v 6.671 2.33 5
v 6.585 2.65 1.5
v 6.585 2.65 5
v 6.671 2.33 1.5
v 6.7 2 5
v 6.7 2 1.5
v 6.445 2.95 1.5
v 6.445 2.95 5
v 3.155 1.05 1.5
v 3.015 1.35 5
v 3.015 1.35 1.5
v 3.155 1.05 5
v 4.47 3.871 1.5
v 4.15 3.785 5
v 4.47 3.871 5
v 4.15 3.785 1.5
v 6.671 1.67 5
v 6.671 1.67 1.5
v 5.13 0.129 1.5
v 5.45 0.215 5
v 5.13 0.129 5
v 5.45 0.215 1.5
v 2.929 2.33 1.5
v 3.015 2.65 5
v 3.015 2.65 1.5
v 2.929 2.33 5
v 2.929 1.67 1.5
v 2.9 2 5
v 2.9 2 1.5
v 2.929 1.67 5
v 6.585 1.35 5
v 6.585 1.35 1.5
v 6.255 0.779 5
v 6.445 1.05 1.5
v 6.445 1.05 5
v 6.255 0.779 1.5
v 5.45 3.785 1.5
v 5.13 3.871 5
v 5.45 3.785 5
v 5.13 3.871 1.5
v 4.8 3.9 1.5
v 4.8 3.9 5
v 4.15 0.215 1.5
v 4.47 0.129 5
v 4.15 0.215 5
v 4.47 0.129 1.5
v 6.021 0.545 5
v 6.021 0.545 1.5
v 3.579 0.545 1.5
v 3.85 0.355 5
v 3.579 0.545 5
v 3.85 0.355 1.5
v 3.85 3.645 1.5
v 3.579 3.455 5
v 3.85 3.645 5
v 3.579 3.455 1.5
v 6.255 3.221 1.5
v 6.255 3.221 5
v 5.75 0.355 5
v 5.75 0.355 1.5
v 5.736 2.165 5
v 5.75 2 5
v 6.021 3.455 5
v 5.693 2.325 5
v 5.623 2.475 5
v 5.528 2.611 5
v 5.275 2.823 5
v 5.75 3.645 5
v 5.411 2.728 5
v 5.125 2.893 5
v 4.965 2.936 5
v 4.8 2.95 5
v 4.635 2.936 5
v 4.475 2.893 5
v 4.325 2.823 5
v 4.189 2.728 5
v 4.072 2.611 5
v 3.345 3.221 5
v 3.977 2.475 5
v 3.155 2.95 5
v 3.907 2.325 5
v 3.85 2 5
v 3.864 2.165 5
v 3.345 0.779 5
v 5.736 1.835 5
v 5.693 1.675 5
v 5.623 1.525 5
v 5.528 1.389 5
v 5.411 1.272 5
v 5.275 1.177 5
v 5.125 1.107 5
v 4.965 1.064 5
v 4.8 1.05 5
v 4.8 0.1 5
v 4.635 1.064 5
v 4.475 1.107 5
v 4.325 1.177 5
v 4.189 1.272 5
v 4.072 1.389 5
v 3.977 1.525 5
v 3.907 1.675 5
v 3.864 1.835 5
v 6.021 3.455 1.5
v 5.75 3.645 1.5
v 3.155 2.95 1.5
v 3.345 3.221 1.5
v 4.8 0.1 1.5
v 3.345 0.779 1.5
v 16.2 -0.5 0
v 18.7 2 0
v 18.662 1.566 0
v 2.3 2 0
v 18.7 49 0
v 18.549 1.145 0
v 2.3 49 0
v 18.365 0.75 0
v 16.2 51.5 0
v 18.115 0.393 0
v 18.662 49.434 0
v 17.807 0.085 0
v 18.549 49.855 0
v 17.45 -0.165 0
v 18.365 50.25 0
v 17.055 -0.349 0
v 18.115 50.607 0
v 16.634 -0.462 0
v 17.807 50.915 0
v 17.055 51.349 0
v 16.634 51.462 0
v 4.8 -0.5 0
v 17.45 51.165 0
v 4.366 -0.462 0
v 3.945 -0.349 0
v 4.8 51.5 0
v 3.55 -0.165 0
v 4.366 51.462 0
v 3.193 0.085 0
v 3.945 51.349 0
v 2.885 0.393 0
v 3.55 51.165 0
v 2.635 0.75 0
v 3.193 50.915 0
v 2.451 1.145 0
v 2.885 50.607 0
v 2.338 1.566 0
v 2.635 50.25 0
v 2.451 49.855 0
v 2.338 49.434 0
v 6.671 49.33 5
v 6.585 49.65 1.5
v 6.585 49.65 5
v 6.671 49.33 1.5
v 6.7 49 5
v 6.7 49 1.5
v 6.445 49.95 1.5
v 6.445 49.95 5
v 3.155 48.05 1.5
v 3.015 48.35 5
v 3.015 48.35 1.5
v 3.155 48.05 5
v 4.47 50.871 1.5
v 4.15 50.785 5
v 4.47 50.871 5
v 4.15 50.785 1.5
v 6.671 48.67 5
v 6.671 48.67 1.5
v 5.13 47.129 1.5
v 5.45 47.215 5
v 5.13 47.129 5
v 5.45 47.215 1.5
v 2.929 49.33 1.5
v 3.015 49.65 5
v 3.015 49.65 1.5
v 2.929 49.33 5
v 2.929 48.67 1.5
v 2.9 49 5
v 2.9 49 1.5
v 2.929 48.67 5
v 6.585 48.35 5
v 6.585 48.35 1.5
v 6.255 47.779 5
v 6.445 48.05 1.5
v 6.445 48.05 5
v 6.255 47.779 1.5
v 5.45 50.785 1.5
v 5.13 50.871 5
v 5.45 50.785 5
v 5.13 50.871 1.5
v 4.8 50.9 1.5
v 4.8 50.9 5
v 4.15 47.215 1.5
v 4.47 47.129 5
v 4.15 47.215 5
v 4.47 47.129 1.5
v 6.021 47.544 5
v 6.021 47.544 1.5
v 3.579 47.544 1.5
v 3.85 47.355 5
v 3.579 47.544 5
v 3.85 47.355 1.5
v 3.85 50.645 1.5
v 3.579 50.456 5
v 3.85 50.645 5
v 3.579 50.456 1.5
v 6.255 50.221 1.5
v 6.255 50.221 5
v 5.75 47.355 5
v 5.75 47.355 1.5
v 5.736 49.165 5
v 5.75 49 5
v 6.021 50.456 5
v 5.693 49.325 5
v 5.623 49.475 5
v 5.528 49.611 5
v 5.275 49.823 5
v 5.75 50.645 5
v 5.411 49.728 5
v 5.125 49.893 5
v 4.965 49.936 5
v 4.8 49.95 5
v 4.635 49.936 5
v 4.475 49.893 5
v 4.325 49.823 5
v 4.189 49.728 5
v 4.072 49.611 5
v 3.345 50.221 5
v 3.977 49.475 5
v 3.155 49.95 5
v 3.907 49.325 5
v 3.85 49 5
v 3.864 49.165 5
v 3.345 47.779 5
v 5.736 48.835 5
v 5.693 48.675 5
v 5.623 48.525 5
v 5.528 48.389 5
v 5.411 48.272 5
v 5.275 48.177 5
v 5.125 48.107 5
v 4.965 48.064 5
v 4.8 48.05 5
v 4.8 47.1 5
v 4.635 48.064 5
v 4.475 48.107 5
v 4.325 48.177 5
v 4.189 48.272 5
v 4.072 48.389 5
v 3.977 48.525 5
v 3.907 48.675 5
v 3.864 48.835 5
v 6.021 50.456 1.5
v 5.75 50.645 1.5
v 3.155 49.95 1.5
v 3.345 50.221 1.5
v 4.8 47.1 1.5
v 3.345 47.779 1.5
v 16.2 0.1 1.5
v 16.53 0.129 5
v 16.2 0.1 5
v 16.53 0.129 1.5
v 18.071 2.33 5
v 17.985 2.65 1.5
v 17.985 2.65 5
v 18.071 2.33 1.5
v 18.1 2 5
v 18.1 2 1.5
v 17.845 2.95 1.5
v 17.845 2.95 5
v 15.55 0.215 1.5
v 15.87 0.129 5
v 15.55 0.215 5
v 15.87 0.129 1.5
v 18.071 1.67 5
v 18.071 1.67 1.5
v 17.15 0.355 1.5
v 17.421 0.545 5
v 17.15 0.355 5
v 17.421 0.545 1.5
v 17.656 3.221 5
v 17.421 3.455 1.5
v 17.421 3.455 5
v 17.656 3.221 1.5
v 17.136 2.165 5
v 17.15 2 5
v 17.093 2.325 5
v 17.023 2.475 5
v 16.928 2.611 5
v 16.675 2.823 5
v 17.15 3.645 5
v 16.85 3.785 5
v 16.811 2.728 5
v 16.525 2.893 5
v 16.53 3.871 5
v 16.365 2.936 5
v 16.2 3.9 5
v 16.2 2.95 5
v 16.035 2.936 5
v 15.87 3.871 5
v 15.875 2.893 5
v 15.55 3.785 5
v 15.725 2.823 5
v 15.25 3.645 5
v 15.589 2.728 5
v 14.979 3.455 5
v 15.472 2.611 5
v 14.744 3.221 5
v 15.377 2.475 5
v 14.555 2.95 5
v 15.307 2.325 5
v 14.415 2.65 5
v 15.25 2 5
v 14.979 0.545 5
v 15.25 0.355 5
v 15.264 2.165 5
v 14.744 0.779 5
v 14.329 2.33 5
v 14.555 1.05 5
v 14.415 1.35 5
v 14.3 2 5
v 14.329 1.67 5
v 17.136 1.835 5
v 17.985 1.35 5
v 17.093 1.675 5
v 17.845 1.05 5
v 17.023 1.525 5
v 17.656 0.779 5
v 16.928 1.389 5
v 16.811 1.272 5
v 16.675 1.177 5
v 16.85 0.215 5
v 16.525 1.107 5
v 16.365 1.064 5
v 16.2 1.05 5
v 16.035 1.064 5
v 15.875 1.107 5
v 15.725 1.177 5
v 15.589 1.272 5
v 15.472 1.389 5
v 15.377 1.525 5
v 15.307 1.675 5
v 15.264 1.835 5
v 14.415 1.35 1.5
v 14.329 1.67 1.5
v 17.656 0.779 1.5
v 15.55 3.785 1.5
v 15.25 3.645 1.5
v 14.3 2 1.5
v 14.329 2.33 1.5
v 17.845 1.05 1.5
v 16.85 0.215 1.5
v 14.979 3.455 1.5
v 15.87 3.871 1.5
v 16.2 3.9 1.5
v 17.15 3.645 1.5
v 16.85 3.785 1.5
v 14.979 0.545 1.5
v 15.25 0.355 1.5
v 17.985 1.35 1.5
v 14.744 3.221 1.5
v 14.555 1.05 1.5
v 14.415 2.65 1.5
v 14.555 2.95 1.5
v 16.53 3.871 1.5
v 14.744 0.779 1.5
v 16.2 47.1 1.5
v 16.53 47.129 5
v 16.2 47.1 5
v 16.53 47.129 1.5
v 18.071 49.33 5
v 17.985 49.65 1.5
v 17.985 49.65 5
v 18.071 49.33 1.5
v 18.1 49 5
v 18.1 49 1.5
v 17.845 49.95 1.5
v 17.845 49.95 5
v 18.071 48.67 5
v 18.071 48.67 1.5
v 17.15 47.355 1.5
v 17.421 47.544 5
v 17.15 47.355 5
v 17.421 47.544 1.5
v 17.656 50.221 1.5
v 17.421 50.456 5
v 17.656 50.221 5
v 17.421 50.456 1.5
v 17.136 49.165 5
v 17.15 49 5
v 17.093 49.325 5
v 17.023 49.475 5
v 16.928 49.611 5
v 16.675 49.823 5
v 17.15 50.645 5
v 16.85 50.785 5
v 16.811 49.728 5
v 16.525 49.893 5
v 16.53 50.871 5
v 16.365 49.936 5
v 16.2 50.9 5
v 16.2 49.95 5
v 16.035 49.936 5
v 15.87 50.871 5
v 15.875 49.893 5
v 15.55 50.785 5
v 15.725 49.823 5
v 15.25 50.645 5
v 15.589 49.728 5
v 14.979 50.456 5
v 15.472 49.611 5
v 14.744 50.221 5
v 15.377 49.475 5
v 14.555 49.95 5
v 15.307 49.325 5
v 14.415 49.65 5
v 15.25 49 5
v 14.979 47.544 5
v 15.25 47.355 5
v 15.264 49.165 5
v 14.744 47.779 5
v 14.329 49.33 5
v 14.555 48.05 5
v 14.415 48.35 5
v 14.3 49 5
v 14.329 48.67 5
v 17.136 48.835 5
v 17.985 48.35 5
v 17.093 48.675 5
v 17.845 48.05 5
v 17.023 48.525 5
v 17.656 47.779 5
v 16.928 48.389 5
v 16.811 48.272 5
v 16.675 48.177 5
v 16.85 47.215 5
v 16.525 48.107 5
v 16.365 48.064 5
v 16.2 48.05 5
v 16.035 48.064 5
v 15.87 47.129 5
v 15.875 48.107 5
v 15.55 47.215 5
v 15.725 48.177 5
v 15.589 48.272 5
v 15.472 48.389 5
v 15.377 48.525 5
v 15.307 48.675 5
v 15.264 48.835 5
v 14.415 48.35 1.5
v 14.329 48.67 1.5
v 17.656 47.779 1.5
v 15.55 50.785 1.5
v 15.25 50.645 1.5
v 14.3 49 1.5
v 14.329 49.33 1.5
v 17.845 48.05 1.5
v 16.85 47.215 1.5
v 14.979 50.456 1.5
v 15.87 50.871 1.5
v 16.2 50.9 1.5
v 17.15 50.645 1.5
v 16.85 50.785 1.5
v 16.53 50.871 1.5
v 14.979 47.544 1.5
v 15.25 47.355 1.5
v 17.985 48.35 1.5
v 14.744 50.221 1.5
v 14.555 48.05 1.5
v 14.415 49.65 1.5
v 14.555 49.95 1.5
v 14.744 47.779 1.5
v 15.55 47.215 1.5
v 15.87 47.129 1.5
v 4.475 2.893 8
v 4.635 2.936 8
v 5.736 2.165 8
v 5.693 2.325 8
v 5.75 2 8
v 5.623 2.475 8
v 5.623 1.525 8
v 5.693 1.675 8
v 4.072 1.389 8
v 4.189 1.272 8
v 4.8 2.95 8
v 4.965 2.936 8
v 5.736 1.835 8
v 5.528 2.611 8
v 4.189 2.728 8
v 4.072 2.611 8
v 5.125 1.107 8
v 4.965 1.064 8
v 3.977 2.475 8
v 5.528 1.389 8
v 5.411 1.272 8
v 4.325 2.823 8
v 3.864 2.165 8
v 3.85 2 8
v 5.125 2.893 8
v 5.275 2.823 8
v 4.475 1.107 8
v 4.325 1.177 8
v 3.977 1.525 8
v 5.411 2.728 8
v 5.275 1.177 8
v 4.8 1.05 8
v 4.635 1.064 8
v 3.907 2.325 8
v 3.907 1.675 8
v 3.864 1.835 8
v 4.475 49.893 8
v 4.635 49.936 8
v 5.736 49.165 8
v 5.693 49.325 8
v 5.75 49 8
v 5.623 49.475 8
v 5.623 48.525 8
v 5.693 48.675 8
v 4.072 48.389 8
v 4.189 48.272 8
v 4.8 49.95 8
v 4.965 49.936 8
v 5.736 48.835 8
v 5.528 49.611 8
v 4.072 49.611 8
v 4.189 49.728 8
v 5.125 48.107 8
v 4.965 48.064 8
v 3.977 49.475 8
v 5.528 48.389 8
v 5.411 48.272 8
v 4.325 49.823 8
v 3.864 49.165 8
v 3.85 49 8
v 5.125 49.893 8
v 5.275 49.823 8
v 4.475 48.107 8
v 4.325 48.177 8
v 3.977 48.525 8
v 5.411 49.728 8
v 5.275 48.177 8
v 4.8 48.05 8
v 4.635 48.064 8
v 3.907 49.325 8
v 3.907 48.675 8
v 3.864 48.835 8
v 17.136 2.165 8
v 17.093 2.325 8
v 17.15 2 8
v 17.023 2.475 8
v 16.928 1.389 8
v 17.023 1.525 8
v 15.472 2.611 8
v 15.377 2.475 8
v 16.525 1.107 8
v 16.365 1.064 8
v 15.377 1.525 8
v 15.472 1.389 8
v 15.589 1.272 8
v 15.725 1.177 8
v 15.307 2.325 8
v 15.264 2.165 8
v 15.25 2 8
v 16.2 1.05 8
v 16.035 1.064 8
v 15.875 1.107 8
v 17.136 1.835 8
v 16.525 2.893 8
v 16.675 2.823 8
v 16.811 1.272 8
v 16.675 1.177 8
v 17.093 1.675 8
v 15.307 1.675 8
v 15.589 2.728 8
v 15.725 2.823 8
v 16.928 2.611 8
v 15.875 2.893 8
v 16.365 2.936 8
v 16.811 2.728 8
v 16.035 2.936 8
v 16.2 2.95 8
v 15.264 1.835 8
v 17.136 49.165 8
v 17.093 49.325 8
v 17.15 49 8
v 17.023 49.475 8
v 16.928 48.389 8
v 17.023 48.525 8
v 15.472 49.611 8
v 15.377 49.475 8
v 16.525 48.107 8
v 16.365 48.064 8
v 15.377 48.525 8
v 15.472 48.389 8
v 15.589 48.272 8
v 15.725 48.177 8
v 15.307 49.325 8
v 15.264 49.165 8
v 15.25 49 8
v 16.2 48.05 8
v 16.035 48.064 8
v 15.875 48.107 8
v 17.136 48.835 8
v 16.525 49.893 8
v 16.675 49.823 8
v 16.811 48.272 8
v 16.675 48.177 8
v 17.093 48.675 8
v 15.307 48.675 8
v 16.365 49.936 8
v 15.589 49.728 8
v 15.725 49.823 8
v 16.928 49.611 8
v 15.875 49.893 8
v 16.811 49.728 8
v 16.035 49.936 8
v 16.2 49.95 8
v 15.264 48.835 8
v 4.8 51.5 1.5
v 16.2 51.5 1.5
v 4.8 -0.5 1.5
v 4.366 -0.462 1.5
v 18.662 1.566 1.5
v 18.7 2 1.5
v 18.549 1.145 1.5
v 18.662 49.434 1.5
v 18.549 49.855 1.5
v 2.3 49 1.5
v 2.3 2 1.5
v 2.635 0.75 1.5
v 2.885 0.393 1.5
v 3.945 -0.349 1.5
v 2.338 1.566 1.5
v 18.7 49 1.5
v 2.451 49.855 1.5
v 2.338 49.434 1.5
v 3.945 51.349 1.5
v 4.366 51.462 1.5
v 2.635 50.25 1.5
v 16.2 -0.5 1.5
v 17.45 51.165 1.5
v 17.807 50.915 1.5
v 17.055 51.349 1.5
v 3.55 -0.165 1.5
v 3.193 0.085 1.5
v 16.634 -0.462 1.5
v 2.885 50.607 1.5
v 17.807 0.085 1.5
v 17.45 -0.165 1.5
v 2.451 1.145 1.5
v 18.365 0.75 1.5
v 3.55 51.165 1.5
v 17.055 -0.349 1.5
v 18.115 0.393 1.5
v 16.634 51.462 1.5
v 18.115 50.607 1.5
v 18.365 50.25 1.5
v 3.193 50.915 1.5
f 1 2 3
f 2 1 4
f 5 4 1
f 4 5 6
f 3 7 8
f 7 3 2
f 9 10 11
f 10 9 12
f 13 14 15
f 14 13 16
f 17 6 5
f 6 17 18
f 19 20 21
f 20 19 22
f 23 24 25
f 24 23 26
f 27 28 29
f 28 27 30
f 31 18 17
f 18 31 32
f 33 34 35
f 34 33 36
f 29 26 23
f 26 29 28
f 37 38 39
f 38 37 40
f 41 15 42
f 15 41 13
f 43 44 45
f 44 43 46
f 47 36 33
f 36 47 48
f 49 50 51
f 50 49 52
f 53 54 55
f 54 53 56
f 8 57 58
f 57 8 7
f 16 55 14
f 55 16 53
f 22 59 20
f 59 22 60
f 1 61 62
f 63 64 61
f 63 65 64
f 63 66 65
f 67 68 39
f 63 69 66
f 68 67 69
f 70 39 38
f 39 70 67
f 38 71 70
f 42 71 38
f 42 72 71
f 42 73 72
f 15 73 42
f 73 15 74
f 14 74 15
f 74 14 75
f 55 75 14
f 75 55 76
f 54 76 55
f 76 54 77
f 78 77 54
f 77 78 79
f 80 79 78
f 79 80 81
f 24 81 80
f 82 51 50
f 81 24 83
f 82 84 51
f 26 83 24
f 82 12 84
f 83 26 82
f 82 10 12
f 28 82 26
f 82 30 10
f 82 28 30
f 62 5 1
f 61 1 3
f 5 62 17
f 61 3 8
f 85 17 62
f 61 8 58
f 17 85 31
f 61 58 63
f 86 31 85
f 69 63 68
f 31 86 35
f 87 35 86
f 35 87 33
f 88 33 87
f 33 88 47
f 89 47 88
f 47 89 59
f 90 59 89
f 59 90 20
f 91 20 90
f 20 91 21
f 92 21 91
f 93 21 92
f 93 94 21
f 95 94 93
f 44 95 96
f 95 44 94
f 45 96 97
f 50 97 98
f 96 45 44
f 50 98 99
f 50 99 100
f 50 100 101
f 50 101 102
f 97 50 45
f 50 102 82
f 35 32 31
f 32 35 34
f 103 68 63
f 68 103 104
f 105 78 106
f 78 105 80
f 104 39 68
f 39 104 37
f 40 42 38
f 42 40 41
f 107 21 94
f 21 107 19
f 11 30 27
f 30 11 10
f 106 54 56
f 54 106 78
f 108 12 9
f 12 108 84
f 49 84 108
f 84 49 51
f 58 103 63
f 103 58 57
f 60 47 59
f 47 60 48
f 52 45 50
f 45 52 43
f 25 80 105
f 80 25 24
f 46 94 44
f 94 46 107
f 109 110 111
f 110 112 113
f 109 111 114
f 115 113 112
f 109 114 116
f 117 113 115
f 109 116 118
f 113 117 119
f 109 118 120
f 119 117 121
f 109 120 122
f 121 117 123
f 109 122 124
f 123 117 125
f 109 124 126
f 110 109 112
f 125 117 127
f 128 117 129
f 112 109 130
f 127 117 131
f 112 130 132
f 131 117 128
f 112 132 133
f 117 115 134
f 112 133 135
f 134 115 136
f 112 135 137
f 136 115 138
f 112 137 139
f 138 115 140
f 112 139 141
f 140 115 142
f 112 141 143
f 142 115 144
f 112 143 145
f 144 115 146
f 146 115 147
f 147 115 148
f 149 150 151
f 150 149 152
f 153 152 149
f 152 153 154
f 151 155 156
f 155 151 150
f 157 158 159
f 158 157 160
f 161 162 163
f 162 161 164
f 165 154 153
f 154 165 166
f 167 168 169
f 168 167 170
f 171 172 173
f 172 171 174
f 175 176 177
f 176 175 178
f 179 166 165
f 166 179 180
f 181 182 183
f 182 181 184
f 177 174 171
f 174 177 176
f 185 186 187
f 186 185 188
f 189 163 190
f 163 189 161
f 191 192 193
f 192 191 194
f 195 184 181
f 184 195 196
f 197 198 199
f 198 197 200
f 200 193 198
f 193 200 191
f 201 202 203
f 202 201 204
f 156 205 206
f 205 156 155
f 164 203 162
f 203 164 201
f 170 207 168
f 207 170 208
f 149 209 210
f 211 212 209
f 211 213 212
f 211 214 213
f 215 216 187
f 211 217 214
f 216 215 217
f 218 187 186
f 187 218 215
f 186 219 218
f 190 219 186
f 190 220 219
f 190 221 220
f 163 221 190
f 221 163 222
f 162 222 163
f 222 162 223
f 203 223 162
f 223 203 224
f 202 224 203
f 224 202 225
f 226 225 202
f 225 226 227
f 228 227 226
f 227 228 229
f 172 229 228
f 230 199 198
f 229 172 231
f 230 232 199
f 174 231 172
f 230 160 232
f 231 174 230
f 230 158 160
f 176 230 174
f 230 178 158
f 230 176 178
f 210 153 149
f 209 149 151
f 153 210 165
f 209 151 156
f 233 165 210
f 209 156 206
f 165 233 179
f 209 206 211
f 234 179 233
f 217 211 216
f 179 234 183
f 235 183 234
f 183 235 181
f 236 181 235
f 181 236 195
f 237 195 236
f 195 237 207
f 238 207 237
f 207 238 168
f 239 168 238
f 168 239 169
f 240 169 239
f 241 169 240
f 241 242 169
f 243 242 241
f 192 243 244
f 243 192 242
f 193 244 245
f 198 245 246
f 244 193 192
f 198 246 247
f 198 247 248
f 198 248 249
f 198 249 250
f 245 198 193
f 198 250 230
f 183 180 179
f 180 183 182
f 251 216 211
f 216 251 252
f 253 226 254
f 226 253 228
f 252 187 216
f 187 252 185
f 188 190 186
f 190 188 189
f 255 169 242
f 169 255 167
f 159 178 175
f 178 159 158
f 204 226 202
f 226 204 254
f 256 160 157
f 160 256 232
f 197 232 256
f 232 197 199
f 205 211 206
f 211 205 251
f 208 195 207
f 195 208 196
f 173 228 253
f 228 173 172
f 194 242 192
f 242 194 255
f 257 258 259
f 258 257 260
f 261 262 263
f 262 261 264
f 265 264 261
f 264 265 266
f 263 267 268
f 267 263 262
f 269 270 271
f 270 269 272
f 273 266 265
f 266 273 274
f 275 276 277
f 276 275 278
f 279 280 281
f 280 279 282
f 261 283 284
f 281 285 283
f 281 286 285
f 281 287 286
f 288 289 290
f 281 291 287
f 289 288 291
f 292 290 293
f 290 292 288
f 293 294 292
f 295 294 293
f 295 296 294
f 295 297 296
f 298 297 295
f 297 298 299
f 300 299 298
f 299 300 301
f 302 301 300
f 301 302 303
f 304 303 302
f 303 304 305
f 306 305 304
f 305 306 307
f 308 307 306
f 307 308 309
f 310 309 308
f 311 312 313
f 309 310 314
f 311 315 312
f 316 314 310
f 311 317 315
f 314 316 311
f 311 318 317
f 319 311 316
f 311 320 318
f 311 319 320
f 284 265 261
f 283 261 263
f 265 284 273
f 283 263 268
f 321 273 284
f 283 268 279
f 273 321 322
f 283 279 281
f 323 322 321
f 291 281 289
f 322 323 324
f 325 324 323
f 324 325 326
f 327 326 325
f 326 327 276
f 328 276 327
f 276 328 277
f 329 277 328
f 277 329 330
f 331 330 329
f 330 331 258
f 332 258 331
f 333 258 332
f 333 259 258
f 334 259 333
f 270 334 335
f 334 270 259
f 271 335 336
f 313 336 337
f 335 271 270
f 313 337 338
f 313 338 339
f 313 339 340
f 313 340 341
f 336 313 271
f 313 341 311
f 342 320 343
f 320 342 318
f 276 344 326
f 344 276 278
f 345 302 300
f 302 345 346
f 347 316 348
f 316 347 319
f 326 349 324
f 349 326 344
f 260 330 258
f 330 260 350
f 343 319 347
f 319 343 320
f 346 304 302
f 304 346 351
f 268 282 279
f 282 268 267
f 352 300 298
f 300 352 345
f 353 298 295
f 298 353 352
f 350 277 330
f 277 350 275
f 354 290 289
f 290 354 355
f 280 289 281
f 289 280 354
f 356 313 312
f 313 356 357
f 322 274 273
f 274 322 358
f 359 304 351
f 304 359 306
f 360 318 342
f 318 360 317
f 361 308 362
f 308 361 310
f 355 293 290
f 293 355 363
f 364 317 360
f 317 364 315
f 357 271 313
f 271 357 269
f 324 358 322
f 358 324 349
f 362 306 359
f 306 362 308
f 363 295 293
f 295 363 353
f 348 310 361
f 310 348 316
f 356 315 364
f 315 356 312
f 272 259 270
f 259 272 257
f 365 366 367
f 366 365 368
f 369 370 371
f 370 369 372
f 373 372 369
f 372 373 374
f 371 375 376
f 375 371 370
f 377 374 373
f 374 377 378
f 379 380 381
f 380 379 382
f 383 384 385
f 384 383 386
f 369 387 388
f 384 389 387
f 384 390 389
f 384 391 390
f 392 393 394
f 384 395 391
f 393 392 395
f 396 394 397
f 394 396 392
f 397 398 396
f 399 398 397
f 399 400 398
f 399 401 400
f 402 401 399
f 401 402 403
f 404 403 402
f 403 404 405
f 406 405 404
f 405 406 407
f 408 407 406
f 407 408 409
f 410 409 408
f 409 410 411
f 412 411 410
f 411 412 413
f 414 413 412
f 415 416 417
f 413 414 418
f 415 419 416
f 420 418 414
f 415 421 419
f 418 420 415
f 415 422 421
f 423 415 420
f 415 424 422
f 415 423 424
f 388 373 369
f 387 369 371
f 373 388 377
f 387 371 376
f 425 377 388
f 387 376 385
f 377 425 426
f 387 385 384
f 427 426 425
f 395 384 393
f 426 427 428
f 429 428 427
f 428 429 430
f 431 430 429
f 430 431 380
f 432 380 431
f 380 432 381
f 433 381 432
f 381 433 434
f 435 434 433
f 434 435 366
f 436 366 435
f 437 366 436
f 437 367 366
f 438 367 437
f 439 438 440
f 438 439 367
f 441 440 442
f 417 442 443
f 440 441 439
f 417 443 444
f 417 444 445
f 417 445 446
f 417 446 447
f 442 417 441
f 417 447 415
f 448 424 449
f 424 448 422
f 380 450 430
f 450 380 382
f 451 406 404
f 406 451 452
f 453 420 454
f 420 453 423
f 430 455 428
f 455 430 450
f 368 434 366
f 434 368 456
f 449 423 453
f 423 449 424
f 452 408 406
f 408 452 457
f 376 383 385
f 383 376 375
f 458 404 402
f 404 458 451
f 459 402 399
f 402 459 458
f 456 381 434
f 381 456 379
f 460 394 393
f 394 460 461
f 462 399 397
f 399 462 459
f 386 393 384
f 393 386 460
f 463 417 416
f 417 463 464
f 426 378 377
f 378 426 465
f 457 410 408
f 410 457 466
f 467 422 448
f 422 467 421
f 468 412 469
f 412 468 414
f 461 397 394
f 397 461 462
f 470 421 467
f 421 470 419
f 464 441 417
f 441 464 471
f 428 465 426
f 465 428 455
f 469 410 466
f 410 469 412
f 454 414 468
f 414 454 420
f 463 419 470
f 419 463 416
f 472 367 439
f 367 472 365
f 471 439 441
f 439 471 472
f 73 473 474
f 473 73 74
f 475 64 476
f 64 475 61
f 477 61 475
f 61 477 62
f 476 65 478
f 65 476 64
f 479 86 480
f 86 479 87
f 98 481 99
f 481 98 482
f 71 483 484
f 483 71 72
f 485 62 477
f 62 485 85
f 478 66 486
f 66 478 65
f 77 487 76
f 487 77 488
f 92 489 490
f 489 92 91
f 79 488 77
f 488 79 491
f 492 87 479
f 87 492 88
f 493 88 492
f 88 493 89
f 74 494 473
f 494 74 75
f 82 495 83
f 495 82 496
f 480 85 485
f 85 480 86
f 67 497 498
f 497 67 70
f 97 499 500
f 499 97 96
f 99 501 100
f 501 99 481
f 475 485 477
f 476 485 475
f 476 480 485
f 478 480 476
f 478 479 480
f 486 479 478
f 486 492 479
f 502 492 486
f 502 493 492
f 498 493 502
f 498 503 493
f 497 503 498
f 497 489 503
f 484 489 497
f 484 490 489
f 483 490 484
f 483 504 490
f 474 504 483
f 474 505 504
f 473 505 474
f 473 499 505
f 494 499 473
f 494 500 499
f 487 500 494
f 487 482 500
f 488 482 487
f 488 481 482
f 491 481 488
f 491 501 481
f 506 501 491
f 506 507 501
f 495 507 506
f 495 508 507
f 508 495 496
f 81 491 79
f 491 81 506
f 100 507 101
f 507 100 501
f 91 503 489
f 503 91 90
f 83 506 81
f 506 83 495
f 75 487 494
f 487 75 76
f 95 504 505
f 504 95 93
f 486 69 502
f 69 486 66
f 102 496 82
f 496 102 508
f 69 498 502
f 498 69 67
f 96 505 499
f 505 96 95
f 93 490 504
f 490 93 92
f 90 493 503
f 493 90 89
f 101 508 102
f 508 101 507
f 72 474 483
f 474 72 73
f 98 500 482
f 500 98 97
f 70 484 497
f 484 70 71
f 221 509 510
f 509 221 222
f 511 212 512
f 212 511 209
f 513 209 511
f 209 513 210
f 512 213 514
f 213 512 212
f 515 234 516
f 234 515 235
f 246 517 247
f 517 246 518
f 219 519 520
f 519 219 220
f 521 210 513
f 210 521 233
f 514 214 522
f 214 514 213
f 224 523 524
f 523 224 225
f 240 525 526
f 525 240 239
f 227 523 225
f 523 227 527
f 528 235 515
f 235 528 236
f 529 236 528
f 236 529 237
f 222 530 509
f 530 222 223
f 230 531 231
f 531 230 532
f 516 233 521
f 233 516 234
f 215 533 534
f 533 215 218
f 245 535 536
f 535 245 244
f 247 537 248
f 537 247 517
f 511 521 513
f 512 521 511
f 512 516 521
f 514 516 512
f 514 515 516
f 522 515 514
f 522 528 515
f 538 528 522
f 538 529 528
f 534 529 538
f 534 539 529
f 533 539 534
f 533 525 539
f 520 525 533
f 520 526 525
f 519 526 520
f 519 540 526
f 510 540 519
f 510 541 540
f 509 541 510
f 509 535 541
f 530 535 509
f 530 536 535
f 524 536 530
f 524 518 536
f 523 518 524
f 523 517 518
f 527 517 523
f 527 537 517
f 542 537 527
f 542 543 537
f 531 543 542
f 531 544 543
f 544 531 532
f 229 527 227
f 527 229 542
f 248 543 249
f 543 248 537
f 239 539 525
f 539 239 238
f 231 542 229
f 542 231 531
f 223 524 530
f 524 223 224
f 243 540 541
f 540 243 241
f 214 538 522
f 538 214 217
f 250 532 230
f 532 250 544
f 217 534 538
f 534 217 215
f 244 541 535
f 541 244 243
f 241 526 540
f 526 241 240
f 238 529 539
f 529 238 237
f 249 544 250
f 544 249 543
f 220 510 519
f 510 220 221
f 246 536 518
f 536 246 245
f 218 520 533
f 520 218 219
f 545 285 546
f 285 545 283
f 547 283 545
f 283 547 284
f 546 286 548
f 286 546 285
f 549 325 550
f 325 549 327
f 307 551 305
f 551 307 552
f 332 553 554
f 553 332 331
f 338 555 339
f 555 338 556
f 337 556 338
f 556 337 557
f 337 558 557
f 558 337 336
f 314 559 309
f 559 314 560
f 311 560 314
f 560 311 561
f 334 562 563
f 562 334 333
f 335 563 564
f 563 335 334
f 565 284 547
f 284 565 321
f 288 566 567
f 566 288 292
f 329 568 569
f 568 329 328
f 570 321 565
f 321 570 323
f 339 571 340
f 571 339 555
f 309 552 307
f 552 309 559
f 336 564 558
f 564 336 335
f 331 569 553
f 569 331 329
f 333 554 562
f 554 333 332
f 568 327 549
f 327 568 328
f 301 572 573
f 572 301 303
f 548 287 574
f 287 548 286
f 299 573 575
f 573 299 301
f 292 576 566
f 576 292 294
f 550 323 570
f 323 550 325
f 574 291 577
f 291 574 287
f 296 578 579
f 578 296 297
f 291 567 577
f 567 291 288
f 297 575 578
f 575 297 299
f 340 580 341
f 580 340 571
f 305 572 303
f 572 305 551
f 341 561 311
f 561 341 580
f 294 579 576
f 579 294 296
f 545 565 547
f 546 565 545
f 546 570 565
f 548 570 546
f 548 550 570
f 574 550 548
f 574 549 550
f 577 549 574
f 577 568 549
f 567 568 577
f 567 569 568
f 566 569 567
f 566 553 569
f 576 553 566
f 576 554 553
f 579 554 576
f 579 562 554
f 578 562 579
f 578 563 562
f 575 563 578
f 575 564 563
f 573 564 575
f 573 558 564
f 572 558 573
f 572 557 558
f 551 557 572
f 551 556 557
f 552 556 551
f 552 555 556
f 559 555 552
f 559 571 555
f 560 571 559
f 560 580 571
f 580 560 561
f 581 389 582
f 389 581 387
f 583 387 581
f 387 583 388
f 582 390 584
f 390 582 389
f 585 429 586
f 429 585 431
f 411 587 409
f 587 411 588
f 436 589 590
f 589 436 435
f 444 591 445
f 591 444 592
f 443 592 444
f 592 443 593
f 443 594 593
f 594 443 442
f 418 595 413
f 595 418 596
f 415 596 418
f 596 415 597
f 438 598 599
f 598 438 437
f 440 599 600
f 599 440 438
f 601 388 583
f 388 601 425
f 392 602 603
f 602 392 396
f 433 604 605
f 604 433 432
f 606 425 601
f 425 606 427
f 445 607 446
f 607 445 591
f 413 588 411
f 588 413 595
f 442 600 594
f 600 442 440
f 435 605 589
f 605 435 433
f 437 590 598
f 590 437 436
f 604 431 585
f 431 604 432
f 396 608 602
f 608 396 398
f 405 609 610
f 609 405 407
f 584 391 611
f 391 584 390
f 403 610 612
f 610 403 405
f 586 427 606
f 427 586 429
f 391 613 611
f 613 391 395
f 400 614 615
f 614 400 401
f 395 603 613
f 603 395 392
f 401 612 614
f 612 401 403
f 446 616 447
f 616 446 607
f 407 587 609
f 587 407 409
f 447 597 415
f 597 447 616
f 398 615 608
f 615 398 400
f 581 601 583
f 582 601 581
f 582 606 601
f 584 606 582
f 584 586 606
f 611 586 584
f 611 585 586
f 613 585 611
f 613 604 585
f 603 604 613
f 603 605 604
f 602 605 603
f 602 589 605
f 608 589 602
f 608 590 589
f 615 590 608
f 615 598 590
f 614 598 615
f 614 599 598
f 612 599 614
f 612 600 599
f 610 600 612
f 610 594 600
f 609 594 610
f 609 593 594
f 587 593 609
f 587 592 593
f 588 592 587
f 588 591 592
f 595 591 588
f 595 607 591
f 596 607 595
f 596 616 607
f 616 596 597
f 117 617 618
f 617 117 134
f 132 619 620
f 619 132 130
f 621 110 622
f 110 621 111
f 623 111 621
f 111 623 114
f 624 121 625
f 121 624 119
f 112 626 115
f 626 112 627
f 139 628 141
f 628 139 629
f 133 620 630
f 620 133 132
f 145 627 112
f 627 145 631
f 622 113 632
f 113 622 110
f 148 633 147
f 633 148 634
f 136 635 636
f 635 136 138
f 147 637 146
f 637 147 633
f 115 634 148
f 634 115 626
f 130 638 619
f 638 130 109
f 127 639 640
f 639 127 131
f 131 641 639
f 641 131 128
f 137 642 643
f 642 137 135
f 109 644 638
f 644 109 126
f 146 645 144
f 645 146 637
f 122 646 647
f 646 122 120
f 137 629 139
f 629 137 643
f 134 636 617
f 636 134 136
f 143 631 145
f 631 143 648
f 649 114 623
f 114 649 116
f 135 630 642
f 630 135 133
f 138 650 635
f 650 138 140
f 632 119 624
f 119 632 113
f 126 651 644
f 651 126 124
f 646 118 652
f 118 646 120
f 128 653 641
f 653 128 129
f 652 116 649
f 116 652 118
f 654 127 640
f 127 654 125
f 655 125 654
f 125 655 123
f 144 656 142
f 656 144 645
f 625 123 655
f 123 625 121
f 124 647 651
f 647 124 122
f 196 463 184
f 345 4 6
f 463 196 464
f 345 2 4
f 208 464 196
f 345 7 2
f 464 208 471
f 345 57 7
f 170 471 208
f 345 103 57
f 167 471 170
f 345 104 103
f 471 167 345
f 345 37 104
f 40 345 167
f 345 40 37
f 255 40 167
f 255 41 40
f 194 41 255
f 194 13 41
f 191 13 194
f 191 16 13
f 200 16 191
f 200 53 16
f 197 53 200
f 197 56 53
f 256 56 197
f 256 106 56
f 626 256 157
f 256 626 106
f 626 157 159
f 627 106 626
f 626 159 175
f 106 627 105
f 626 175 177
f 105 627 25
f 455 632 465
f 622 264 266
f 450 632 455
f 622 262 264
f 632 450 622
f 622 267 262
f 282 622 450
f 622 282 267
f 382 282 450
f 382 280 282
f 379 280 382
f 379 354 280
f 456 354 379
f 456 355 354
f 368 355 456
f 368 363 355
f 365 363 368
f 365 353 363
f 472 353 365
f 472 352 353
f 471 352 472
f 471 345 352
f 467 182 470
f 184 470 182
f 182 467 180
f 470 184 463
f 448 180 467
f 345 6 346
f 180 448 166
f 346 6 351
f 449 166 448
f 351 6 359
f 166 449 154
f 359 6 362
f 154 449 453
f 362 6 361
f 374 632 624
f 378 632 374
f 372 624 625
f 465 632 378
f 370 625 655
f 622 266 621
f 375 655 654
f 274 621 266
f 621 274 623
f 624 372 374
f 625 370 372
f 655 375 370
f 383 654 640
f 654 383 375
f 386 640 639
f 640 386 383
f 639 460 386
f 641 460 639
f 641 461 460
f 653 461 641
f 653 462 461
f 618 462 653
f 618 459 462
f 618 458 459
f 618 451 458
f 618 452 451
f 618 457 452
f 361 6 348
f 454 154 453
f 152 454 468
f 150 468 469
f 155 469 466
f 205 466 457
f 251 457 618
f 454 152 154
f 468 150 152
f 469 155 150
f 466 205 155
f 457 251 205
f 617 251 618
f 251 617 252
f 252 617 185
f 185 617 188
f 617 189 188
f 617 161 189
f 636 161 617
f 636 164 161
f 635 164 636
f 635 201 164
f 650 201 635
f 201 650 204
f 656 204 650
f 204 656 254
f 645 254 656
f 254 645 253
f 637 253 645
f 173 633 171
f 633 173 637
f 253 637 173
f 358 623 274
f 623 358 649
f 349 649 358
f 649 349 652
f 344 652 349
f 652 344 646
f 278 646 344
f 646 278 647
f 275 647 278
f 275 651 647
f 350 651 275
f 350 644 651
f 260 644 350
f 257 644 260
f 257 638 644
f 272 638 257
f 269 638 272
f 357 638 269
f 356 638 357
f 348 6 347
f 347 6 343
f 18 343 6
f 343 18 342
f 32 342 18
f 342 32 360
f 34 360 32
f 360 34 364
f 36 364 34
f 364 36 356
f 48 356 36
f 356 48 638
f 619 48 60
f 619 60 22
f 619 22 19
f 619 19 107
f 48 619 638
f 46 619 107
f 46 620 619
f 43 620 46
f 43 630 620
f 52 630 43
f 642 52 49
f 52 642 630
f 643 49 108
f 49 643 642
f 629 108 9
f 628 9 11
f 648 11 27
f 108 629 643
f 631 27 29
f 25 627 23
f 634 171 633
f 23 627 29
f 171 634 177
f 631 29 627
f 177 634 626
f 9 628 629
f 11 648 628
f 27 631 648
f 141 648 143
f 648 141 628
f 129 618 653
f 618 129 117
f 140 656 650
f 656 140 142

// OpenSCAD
$fn=36;
array=[[4.8,2],[4.8,51-2],[4.8+11.4,2],[4.8+11.4,51-2]];
union(){
    hull() for(i=[0:3]) translate(array[i]) cylinder(h=1.5,d=5);
    for(i=[0:3]) translate(array[i]) cylinder(h=5,d=3.8);
    for(i=[0:3]) translate(array[i]) cylinder(h=8,d=1.9);
}
